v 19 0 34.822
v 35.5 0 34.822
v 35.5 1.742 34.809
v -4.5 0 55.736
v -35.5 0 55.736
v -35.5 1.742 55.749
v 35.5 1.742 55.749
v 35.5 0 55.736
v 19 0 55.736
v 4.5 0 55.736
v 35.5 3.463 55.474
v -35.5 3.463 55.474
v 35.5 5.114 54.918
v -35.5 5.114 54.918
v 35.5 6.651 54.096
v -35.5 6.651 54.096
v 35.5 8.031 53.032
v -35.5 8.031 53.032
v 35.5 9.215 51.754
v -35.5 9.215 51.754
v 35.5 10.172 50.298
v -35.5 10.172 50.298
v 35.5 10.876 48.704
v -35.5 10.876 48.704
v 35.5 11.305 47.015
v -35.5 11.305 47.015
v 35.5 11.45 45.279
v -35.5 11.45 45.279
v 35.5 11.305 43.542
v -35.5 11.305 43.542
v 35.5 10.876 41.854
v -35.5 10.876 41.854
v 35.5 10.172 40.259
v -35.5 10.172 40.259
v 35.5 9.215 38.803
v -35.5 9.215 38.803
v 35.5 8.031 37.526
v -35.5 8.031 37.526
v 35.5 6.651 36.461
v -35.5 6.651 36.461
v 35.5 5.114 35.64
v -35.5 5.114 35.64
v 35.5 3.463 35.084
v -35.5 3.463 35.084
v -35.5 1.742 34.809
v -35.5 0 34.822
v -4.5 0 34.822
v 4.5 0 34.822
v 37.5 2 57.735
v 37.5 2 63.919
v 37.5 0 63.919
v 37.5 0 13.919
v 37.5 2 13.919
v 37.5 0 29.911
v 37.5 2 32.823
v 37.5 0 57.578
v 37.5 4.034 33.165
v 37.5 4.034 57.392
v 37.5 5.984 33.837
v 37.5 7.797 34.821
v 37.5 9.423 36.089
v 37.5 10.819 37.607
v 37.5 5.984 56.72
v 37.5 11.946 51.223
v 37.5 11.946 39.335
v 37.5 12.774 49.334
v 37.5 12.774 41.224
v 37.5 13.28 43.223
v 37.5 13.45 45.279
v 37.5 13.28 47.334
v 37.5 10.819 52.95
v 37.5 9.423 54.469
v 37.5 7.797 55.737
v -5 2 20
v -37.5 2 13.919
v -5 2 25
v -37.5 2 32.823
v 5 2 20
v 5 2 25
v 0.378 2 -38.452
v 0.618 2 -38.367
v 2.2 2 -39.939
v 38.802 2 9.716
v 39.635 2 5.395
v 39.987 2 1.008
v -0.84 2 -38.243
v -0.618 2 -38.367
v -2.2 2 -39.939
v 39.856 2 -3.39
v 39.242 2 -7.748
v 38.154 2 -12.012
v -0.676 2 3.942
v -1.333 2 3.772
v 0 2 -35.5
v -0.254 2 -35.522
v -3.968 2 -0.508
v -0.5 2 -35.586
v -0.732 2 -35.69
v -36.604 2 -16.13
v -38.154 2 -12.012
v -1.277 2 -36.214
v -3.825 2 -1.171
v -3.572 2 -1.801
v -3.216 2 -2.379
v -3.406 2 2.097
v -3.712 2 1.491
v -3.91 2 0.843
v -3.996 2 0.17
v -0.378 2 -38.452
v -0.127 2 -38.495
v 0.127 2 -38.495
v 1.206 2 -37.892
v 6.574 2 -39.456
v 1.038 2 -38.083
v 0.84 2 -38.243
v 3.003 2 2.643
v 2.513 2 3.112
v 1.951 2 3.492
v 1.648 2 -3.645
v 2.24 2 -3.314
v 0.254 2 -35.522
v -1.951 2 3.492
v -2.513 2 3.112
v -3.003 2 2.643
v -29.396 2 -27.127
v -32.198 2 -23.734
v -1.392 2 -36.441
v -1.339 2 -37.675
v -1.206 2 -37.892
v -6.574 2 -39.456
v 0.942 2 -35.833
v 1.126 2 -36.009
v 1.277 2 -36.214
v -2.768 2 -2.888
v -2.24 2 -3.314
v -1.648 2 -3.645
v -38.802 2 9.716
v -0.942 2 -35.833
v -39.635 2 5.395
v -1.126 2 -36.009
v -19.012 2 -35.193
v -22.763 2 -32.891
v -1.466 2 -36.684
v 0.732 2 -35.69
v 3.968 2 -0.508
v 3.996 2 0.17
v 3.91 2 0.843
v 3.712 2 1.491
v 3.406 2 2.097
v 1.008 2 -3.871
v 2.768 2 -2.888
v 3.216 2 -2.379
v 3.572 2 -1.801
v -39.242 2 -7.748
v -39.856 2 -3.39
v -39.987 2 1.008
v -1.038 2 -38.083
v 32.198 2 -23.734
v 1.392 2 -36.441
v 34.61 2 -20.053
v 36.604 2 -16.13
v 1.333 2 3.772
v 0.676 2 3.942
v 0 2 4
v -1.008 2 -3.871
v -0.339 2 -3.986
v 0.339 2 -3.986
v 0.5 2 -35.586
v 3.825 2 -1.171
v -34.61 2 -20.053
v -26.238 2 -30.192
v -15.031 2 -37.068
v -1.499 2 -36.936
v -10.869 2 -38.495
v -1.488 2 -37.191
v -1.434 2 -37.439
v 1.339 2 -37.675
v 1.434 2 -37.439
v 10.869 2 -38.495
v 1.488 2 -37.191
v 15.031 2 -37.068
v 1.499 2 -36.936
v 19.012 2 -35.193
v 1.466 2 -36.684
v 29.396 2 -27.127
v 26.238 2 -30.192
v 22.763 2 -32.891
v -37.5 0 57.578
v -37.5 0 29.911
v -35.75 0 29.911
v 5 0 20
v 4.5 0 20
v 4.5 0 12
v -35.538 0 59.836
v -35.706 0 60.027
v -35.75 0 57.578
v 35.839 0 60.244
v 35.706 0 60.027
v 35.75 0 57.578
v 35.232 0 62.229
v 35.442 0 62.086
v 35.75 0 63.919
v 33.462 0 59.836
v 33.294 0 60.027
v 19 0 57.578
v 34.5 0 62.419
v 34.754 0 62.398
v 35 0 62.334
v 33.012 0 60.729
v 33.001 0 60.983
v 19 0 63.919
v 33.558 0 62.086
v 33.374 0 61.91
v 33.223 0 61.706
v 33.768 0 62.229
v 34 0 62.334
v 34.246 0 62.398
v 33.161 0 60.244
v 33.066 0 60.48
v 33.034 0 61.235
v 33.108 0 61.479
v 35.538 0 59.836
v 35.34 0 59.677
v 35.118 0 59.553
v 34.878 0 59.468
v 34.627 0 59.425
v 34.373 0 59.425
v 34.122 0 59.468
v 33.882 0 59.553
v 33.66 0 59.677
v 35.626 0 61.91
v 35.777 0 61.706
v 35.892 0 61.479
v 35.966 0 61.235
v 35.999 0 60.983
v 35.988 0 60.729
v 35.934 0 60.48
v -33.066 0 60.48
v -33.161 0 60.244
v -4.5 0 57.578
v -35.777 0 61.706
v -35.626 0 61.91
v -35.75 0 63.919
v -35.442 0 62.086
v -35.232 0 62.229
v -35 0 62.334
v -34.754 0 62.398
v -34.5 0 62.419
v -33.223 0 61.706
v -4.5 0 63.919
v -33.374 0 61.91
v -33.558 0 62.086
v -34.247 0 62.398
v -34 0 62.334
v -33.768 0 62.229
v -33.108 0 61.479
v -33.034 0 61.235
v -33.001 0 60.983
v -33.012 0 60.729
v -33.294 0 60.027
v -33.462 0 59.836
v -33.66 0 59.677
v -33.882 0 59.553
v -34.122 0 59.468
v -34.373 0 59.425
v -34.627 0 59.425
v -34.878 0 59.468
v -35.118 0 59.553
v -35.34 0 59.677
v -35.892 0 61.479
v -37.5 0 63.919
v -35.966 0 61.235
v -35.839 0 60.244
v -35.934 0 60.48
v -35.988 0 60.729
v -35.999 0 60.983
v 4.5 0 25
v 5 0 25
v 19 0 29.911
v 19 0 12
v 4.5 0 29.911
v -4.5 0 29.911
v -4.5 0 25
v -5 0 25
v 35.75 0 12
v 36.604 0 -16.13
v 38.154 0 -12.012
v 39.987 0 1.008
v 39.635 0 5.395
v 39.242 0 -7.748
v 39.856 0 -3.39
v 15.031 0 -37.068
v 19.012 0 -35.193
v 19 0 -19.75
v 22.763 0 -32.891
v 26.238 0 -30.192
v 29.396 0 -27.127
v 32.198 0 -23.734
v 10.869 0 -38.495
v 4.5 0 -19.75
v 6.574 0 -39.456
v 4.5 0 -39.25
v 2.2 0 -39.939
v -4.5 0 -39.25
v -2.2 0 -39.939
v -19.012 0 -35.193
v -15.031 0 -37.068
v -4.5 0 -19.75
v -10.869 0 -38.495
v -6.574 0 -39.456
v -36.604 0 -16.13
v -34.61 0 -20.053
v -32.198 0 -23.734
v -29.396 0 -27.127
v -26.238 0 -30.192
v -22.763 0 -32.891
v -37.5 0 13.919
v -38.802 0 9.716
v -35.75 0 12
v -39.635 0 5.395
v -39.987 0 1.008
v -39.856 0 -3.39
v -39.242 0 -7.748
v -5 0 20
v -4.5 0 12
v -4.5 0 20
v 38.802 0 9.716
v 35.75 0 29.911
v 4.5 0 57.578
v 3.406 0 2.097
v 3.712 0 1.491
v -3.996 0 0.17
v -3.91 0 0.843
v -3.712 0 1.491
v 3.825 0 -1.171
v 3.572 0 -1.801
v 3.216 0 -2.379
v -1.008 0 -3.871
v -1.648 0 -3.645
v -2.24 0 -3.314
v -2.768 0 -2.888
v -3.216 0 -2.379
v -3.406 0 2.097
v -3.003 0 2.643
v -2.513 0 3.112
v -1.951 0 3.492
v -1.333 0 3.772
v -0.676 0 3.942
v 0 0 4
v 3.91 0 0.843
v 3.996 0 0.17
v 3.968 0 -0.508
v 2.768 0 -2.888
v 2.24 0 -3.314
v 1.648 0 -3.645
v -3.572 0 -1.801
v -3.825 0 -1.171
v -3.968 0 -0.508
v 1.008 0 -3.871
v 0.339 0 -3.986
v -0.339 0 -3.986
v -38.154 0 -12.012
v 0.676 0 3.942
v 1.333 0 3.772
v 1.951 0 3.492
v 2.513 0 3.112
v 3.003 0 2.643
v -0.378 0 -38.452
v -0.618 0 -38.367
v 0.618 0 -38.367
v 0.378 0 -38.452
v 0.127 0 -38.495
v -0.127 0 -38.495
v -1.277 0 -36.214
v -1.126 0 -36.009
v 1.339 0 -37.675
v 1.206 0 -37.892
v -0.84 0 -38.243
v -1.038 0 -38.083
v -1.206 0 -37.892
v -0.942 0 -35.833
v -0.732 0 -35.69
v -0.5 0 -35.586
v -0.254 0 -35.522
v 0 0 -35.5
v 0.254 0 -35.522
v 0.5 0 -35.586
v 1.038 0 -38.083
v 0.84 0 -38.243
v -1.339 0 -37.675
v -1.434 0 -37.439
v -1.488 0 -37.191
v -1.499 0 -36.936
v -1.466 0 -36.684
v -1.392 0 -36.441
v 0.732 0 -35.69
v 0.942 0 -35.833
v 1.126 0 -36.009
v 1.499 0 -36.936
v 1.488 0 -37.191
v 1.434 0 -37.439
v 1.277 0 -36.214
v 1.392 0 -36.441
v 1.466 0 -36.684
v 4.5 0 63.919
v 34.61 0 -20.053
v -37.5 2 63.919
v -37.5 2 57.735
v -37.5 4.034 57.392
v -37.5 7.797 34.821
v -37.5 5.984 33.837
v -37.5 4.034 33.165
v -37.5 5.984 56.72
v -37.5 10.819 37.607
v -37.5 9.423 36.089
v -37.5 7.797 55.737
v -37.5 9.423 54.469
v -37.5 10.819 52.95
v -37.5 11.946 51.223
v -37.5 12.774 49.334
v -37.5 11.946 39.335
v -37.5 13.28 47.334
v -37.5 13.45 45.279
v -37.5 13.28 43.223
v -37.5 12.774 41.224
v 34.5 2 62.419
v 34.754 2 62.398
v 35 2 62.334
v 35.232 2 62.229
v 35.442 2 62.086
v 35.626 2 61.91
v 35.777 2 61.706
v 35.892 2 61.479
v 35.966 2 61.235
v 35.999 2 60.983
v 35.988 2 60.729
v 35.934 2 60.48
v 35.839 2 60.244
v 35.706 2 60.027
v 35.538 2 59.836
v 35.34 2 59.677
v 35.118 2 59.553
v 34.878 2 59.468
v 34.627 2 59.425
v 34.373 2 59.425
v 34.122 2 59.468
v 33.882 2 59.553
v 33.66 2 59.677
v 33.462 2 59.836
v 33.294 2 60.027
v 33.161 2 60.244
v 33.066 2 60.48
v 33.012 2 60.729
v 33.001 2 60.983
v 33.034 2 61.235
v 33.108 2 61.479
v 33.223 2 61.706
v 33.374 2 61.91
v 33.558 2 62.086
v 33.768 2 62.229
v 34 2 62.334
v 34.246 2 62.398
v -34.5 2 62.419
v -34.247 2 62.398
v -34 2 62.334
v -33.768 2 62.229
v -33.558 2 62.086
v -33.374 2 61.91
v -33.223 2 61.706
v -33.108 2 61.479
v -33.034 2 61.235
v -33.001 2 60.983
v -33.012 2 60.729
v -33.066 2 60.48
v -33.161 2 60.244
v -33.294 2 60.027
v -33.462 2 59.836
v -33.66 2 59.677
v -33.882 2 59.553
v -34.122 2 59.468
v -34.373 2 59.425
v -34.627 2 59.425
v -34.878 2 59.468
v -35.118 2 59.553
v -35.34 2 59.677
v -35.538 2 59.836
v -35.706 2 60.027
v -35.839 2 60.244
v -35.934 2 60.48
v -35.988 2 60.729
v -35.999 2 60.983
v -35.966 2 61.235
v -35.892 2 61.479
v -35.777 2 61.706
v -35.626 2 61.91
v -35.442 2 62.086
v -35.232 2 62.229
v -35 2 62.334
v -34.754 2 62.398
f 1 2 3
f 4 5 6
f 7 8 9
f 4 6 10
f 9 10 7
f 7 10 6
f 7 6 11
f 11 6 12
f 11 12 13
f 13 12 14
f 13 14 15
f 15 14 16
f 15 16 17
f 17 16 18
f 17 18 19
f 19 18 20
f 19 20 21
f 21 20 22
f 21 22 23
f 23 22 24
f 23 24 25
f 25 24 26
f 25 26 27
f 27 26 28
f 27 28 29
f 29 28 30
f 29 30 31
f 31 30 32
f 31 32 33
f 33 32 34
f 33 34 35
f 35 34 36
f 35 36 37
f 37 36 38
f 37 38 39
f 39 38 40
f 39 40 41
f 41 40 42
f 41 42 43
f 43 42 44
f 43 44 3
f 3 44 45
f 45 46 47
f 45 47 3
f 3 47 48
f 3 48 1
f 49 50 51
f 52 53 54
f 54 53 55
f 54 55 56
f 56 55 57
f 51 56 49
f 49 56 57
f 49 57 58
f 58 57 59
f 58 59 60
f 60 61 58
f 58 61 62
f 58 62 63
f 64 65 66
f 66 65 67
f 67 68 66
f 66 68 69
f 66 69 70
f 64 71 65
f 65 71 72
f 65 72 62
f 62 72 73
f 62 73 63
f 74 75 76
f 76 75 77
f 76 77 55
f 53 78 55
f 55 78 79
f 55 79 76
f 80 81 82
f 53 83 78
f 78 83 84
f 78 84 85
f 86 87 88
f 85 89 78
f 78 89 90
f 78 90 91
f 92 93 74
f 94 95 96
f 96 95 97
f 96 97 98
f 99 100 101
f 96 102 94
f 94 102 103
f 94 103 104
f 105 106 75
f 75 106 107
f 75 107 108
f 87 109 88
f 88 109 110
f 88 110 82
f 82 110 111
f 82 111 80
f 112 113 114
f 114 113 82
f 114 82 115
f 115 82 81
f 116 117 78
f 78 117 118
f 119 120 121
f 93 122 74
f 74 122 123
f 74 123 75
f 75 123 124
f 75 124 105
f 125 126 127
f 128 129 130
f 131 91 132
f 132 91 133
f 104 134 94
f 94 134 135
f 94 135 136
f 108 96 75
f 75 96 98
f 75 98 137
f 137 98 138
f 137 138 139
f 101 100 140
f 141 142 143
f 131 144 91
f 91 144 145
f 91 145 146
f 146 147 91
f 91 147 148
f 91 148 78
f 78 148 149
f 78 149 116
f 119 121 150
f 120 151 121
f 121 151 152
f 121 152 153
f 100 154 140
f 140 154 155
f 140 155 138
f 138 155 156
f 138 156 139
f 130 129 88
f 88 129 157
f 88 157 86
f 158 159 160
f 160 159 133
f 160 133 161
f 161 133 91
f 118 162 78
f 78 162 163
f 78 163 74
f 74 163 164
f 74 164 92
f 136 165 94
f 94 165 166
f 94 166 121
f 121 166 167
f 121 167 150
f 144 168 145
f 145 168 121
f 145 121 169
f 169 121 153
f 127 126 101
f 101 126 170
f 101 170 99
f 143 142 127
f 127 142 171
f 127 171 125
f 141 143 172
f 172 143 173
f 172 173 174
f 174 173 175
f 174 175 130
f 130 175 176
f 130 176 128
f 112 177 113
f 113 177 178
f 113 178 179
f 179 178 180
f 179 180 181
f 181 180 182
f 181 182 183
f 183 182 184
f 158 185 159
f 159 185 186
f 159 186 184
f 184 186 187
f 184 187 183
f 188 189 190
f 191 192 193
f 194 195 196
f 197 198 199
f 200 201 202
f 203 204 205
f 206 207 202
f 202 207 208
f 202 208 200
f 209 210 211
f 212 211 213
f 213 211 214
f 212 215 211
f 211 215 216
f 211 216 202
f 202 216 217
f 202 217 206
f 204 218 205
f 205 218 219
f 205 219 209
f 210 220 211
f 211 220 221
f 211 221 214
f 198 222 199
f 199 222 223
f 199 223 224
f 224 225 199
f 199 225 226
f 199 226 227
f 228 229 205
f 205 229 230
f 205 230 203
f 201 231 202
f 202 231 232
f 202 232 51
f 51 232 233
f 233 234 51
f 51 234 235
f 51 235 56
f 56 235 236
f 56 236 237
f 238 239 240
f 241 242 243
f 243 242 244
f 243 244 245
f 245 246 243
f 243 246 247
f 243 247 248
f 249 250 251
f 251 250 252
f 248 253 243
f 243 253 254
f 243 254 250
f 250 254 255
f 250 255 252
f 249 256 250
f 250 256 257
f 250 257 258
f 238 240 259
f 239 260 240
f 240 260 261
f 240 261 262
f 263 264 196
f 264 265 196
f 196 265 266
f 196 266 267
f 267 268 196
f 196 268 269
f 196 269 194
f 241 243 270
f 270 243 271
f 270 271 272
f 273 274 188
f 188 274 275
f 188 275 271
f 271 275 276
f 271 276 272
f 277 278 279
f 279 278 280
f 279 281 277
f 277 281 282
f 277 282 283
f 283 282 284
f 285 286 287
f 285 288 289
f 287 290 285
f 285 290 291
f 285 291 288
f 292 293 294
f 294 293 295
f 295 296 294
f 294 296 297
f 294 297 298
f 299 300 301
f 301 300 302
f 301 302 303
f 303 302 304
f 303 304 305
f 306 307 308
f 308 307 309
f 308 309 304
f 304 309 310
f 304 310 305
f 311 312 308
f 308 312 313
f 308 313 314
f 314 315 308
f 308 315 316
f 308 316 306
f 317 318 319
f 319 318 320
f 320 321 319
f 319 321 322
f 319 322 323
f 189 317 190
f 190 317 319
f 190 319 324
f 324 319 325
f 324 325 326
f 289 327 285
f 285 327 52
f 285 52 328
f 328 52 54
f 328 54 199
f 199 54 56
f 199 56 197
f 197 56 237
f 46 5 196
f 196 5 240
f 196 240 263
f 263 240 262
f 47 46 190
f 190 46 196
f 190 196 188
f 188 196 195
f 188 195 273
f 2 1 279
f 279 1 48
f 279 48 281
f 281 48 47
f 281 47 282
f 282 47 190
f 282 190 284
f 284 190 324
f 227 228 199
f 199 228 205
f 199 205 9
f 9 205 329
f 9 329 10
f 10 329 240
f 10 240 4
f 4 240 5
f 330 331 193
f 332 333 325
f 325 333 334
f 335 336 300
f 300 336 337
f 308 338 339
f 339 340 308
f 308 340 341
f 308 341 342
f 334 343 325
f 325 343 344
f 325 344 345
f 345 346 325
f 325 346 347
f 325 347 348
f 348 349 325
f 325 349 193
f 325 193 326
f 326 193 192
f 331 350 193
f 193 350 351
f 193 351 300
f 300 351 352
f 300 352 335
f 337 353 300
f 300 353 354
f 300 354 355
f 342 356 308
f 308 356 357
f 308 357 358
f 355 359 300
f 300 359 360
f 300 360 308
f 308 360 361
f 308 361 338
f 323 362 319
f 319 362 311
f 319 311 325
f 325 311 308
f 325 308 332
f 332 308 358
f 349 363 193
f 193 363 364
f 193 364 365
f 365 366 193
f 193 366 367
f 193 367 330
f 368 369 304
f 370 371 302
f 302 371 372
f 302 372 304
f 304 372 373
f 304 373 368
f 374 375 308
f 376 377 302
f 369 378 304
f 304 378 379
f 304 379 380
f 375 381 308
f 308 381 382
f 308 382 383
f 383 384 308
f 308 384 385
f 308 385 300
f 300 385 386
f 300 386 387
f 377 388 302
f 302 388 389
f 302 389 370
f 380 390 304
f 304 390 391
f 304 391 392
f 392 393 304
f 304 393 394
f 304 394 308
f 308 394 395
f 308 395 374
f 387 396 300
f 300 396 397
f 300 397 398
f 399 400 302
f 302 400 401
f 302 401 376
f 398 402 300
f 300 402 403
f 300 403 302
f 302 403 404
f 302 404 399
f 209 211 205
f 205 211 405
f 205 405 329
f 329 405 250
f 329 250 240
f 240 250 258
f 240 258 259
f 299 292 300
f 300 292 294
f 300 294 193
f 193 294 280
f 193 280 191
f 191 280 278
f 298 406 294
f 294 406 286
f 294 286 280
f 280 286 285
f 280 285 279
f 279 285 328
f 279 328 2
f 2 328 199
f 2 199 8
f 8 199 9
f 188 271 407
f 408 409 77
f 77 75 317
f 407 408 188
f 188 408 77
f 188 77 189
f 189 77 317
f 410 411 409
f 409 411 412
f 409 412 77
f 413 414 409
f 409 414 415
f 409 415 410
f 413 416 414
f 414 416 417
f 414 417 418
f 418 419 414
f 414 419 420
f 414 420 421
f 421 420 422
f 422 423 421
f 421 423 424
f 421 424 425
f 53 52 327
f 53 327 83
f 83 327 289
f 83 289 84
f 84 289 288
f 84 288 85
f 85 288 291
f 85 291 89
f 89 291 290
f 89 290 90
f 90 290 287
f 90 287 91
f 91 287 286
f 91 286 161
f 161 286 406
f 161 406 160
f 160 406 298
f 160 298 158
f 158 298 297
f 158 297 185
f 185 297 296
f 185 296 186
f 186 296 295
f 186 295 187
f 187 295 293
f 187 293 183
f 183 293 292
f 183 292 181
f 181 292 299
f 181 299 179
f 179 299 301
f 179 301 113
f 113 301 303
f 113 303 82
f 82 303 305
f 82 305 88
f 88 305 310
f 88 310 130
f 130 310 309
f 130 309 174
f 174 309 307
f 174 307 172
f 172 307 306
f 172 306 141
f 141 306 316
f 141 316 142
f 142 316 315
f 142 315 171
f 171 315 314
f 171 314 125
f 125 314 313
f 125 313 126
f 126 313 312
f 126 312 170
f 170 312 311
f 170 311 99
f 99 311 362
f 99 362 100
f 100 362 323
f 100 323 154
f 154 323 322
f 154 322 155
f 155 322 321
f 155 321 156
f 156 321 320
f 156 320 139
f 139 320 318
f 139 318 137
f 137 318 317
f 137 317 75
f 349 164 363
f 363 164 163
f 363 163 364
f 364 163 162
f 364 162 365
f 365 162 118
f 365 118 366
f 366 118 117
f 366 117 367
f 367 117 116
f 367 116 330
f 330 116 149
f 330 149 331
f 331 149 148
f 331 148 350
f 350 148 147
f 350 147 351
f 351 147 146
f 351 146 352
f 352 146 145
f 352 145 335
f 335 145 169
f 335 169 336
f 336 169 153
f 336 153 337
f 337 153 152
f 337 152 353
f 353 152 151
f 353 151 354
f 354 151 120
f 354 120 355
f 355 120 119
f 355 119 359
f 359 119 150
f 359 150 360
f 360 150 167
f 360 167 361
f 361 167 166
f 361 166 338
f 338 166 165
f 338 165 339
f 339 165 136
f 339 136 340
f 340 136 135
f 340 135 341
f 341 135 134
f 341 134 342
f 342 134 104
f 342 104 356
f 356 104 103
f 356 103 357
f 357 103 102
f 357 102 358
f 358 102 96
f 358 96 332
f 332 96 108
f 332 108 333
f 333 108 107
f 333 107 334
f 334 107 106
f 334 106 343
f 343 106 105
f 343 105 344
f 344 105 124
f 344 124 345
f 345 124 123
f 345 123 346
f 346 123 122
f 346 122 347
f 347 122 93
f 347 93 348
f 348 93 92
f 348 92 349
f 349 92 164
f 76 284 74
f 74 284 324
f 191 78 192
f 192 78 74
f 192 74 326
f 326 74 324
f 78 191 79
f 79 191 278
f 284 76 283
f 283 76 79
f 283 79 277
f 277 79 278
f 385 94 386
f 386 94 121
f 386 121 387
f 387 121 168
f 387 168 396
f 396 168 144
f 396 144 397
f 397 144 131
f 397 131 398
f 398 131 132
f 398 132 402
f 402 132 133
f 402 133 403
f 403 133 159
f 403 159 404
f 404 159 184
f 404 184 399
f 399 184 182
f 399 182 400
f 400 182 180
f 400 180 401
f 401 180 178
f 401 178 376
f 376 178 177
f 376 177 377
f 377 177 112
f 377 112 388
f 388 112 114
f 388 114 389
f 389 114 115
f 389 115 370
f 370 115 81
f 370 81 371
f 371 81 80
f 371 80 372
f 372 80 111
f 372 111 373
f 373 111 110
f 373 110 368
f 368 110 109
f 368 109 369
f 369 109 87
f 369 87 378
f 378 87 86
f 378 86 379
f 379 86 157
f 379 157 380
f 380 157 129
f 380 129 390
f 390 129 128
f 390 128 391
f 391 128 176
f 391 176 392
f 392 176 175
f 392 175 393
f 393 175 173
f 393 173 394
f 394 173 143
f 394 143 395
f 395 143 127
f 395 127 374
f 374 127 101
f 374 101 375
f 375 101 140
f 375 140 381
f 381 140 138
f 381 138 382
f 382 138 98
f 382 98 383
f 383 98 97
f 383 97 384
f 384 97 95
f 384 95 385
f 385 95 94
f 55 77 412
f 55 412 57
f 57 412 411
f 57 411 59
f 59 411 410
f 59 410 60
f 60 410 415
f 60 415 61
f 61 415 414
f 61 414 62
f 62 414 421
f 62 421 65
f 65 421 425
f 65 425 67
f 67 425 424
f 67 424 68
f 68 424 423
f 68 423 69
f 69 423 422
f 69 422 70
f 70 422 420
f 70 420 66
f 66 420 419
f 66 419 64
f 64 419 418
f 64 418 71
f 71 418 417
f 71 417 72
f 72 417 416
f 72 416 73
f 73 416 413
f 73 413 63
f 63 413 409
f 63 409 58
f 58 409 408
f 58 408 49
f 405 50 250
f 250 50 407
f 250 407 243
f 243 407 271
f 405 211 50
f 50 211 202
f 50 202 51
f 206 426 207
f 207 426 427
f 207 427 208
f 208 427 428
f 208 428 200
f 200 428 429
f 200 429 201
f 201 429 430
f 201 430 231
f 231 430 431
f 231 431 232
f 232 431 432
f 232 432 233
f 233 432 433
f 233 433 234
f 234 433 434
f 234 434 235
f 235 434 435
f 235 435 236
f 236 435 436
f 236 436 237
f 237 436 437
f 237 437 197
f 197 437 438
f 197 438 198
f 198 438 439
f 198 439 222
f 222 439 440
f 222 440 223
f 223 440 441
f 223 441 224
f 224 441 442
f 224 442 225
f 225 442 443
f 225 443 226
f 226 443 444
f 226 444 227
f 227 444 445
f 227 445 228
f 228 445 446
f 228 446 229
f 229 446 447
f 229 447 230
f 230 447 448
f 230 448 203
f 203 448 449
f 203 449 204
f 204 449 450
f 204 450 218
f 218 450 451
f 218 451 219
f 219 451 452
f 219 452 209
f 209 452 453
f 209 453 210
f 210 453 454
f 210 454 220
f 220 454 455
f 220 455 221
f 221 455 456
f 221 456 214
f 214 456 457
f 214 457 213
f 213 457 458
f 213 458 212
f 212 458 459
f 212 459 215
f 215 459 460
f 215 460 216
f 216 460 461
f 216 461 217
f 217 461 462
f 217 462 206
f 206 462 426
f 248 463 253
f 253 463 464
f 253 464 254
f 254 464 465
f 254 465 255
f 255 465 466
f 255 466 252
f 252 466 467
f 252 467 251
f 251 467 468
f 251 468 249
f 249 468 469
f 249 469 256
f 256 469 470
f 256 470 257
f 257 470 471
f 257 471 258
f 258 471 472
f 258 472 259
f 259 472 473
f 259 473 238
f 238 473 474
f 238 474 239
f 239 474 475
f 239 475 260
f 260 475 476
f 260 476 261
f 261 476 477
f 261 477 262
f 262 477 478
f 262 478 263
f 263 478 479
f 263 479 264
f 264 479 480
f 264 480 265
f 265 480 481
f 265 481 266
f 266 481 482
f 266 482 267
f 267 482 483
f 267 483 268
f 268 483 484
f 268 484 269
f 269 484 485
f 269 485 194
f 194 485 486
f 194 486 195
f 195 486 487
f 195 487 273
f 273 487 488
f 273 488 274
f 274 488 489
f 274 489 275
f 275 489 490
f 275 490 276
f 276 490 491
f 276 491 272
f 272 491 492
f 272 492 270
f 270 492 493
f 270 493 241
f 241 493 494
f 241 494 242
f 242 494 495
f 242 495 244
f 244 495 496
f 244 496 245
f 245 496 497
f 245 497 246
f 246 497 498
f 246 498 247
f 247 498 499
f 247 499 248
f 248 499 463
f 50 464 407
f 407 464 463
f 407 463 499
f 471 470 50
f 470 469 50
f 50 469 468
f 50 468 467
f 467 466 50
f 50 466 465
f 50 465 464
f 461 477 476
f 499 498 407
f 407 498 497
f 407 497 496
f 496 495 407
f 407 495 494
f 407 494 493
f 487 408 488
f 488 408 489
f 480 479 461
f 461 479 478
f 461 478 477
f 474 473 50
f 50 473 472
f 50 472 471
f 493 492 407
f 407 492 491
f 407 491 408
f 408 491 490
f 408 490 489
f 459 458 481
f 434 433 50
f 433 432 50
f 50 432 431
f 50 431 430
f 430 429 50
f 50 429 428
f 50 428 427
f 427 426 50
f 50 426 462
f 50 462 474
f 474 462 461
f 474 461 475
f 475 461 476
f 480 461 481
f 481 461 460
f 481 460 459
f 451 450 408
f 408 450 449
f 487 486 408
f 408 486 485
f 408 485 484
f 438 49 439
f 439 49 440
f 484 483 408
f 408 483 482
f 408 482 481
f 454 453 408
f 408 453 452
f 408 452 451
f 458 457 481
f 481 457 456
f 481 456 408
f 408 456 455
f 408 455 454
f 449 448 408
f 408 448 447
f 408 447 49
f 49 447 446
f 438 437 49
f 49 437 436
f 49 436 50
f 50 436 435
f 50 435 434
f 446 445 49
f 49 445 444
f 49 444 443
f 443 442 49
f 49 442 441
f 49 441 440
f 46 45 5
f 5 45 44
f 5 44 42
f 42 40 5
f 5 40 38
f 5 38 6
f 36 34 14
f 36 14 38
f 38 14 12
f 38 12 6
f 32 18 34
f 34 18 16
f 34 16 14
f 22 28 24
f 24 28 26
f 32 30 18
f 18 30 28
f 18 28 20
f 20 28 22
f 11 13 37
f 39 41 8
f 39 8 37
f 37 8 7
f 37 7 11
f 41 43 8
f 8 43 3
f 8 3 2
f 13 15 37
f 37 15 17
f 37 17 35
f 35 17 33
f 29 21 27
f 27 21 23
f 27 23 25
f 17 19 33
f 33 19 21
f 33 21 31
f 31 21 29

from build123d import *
from build123d.topology import SkipClean

# Parameters (mm, degrees)
BOSS_EXTRUDE1_DEPTH = 2
SKETCH2_R           = 4
CUT_EXTRUDE1_DEPTH  = 2
SKETCH3_W           = 10
SKETCH3_H           = 5
CUT_EXTRUDE2_DEPTH  = 10
SKETCH7_R           = 1.5
CUT_EXTRUDE3_DEPTH  = 10
SKETCH8_R           = 10.5
CUT_EXTRUDE4_DEPTH  = 101.478560353
BOSS_EXTRUDE2_DEPTH = 75
BOSS_EXTRUDE3_DEPTH = 2
BOSS_EXTRUDE4_DEPTH = 2


with BuildPart() as part:
    # Sketch1 → Boss-Extrude1 (new body)
    with BuildSketch(Plane(origin=(0, 0, 0), x_dir=(1, 0, 0), z_dir=(0, 1, 0))):
        with BuildLine():
            Line((-37.5, -63.919410907), (37.5, -63.919410907))
            Line((37.5, -63.919410907), (37.5, -13.919410907))
            ThreePointArc((37.5, -13.919410907), (0, 40), (-37.5, -13.919410907))
            Line((-37.5, -13.919410907), (-37.5, -63.919410907))
        make_face()
    extrude(amount=BOSS_EXTRUDE1_DEPTH)

    # Sketch2 → Cut-Extrude1 (cut)
    with BuildSketch(Plane(origin=(0, 2, 0), x_dir=(1, 0, 0), z_dir=(0, 1, 0))):
        with Locations(Location((0, 0, 0), (0, 0, 270))):
            Circle(SKETCH2_R)
    extrude(amount=-CUT_EXTRUDE1_DEPTH, mode=Mode.SUBTRACT)

    # Sketch3 → Cut-Extrude2 (cut)
    with BuildSketch(Plane(origin=(0, 2, 0), x_dir=(1, 0, 0), z_dir=(0, 1, 0))):
        with Locations((0, -22.5)):
            Rectangle(SKETCH3_W, SKETCH3_H)
    extrude(amount=-CUT_EXTRUDE2_DEPTH, mode=Mode.SUBTRACT)

    # Sketch7 → Cut-Extrude3 (cut)
    with BuildSketch(Plane(origin=(0, 2, 0), x_dir=(1, 0, 0), z_dir=(0, 1, 0))):
        with Locations(Location((0, 37, 0), (0, 0, 270))):
            Circle(SKETCH7_R)
        with Locations(Location((-34.5, -60.919410907, 0), (0, 0, 270))):
            Circle(SKETCH7_R)
        with Locations(Location((34.5, -60.919410907, 0), (0, 0, 270))):
            Circle(SKETCH7_R)
    extrude(amount=-CUT_EXTRUDE3_DEPTH, mode=Mode.SUBTRACT)

    # Sketch8 → Cut-Extrude4 (cut, through all)
    with BuildSketch(Plane.ZY.offset(37.5)):
        with Locations((45.278815685, 0.949918898)):
            Circle(SKETCH8_R)
    extrude(amount=-CUT_EXTRUDE4_DEPTH, mode=Mode.SUBTRACT)


with BuildPart() as cut_extrude4_piece_1:
    # of the separate pieces the step leaves, piece 1, a body of its own (cut_extrude4_pieces)
    add(part.part.solids().sort_by_distance((-37.5, 0, 13.919410907))[0])



with BuildPart() as cut_extrude4_piece_2:
    # of the separate pieces the step leaves, piece 2, a body of its own (cut_extrude4_pieces)
    add(part.part.solids().sort_by_distance((-37.5, 0, 55.73575855))[0])


with BuildPart() as cut_extrude4_piece_1_1:
    with SkipClean():  # the faces are left unmerged after this step: merging them gives an invalid solid
        add(cut_extrude4_piece_1.part)

        add(cut_extrude4_piece_2.part)  # Boss-Extrude2 merges Cut-Extrude4 piece 2
        # Sketch9 → Boss-Extrude2 (add)
        with BuildSketch(Plane.ZY.offset(37.5)):
            with BuildLine():
                Line((32.814961783, 0), (34.821872819, 0))
                ThreePointArc((34.821872819, 0), (45.278815685, 11.449918898), (55.73575855, 0))
                Line((55.73575855, 0), (57.742669586, 0))
                ThreePointArc((57.742669586, 0), (45.278815685, 13.449918898), (32.814961783, 0))
            make_face()
        extrude(amount=-BOSS_EXTRUDE2_DEPTH)

    # Sketch10 → Boss-Extrude3 (add)
    with BuildSketch(Plane.ZY.offset(37.5)):
        with BuildLine():
            Line((32.814961783, 0), (57.742669586, 0))
            ThreePointArc((57.742669586, 0), (45.278815685, 13.449918898), (32.814961783, 0))
        make_face()
    extrude(amount=-BOSS_EXTRUDE3_DEPTH)

    # Sketch11 → Boss-Extrude4 (add)
    with SkipClean():  # the faces are left unmerged after this step: merging them gives an invalid solid
        with BuildSketch(Plane(origin=(37.5, 0, 0), x_dir=(0, 0, -1), z_dir=(1, 0, 0))):
            with BuildLine():
                Line((-57.742669586, 0), (-32.814961783, 0))
                ThreePointArc((-32.814961783, 0), (-45.278815685, 13.449918898), (-57.742669586, 0))
            make_face()
        extrude(amount=-BOSS_EXTRUDE4_DEPTH)


solid = cut_extrude4_piece_1_1.part
